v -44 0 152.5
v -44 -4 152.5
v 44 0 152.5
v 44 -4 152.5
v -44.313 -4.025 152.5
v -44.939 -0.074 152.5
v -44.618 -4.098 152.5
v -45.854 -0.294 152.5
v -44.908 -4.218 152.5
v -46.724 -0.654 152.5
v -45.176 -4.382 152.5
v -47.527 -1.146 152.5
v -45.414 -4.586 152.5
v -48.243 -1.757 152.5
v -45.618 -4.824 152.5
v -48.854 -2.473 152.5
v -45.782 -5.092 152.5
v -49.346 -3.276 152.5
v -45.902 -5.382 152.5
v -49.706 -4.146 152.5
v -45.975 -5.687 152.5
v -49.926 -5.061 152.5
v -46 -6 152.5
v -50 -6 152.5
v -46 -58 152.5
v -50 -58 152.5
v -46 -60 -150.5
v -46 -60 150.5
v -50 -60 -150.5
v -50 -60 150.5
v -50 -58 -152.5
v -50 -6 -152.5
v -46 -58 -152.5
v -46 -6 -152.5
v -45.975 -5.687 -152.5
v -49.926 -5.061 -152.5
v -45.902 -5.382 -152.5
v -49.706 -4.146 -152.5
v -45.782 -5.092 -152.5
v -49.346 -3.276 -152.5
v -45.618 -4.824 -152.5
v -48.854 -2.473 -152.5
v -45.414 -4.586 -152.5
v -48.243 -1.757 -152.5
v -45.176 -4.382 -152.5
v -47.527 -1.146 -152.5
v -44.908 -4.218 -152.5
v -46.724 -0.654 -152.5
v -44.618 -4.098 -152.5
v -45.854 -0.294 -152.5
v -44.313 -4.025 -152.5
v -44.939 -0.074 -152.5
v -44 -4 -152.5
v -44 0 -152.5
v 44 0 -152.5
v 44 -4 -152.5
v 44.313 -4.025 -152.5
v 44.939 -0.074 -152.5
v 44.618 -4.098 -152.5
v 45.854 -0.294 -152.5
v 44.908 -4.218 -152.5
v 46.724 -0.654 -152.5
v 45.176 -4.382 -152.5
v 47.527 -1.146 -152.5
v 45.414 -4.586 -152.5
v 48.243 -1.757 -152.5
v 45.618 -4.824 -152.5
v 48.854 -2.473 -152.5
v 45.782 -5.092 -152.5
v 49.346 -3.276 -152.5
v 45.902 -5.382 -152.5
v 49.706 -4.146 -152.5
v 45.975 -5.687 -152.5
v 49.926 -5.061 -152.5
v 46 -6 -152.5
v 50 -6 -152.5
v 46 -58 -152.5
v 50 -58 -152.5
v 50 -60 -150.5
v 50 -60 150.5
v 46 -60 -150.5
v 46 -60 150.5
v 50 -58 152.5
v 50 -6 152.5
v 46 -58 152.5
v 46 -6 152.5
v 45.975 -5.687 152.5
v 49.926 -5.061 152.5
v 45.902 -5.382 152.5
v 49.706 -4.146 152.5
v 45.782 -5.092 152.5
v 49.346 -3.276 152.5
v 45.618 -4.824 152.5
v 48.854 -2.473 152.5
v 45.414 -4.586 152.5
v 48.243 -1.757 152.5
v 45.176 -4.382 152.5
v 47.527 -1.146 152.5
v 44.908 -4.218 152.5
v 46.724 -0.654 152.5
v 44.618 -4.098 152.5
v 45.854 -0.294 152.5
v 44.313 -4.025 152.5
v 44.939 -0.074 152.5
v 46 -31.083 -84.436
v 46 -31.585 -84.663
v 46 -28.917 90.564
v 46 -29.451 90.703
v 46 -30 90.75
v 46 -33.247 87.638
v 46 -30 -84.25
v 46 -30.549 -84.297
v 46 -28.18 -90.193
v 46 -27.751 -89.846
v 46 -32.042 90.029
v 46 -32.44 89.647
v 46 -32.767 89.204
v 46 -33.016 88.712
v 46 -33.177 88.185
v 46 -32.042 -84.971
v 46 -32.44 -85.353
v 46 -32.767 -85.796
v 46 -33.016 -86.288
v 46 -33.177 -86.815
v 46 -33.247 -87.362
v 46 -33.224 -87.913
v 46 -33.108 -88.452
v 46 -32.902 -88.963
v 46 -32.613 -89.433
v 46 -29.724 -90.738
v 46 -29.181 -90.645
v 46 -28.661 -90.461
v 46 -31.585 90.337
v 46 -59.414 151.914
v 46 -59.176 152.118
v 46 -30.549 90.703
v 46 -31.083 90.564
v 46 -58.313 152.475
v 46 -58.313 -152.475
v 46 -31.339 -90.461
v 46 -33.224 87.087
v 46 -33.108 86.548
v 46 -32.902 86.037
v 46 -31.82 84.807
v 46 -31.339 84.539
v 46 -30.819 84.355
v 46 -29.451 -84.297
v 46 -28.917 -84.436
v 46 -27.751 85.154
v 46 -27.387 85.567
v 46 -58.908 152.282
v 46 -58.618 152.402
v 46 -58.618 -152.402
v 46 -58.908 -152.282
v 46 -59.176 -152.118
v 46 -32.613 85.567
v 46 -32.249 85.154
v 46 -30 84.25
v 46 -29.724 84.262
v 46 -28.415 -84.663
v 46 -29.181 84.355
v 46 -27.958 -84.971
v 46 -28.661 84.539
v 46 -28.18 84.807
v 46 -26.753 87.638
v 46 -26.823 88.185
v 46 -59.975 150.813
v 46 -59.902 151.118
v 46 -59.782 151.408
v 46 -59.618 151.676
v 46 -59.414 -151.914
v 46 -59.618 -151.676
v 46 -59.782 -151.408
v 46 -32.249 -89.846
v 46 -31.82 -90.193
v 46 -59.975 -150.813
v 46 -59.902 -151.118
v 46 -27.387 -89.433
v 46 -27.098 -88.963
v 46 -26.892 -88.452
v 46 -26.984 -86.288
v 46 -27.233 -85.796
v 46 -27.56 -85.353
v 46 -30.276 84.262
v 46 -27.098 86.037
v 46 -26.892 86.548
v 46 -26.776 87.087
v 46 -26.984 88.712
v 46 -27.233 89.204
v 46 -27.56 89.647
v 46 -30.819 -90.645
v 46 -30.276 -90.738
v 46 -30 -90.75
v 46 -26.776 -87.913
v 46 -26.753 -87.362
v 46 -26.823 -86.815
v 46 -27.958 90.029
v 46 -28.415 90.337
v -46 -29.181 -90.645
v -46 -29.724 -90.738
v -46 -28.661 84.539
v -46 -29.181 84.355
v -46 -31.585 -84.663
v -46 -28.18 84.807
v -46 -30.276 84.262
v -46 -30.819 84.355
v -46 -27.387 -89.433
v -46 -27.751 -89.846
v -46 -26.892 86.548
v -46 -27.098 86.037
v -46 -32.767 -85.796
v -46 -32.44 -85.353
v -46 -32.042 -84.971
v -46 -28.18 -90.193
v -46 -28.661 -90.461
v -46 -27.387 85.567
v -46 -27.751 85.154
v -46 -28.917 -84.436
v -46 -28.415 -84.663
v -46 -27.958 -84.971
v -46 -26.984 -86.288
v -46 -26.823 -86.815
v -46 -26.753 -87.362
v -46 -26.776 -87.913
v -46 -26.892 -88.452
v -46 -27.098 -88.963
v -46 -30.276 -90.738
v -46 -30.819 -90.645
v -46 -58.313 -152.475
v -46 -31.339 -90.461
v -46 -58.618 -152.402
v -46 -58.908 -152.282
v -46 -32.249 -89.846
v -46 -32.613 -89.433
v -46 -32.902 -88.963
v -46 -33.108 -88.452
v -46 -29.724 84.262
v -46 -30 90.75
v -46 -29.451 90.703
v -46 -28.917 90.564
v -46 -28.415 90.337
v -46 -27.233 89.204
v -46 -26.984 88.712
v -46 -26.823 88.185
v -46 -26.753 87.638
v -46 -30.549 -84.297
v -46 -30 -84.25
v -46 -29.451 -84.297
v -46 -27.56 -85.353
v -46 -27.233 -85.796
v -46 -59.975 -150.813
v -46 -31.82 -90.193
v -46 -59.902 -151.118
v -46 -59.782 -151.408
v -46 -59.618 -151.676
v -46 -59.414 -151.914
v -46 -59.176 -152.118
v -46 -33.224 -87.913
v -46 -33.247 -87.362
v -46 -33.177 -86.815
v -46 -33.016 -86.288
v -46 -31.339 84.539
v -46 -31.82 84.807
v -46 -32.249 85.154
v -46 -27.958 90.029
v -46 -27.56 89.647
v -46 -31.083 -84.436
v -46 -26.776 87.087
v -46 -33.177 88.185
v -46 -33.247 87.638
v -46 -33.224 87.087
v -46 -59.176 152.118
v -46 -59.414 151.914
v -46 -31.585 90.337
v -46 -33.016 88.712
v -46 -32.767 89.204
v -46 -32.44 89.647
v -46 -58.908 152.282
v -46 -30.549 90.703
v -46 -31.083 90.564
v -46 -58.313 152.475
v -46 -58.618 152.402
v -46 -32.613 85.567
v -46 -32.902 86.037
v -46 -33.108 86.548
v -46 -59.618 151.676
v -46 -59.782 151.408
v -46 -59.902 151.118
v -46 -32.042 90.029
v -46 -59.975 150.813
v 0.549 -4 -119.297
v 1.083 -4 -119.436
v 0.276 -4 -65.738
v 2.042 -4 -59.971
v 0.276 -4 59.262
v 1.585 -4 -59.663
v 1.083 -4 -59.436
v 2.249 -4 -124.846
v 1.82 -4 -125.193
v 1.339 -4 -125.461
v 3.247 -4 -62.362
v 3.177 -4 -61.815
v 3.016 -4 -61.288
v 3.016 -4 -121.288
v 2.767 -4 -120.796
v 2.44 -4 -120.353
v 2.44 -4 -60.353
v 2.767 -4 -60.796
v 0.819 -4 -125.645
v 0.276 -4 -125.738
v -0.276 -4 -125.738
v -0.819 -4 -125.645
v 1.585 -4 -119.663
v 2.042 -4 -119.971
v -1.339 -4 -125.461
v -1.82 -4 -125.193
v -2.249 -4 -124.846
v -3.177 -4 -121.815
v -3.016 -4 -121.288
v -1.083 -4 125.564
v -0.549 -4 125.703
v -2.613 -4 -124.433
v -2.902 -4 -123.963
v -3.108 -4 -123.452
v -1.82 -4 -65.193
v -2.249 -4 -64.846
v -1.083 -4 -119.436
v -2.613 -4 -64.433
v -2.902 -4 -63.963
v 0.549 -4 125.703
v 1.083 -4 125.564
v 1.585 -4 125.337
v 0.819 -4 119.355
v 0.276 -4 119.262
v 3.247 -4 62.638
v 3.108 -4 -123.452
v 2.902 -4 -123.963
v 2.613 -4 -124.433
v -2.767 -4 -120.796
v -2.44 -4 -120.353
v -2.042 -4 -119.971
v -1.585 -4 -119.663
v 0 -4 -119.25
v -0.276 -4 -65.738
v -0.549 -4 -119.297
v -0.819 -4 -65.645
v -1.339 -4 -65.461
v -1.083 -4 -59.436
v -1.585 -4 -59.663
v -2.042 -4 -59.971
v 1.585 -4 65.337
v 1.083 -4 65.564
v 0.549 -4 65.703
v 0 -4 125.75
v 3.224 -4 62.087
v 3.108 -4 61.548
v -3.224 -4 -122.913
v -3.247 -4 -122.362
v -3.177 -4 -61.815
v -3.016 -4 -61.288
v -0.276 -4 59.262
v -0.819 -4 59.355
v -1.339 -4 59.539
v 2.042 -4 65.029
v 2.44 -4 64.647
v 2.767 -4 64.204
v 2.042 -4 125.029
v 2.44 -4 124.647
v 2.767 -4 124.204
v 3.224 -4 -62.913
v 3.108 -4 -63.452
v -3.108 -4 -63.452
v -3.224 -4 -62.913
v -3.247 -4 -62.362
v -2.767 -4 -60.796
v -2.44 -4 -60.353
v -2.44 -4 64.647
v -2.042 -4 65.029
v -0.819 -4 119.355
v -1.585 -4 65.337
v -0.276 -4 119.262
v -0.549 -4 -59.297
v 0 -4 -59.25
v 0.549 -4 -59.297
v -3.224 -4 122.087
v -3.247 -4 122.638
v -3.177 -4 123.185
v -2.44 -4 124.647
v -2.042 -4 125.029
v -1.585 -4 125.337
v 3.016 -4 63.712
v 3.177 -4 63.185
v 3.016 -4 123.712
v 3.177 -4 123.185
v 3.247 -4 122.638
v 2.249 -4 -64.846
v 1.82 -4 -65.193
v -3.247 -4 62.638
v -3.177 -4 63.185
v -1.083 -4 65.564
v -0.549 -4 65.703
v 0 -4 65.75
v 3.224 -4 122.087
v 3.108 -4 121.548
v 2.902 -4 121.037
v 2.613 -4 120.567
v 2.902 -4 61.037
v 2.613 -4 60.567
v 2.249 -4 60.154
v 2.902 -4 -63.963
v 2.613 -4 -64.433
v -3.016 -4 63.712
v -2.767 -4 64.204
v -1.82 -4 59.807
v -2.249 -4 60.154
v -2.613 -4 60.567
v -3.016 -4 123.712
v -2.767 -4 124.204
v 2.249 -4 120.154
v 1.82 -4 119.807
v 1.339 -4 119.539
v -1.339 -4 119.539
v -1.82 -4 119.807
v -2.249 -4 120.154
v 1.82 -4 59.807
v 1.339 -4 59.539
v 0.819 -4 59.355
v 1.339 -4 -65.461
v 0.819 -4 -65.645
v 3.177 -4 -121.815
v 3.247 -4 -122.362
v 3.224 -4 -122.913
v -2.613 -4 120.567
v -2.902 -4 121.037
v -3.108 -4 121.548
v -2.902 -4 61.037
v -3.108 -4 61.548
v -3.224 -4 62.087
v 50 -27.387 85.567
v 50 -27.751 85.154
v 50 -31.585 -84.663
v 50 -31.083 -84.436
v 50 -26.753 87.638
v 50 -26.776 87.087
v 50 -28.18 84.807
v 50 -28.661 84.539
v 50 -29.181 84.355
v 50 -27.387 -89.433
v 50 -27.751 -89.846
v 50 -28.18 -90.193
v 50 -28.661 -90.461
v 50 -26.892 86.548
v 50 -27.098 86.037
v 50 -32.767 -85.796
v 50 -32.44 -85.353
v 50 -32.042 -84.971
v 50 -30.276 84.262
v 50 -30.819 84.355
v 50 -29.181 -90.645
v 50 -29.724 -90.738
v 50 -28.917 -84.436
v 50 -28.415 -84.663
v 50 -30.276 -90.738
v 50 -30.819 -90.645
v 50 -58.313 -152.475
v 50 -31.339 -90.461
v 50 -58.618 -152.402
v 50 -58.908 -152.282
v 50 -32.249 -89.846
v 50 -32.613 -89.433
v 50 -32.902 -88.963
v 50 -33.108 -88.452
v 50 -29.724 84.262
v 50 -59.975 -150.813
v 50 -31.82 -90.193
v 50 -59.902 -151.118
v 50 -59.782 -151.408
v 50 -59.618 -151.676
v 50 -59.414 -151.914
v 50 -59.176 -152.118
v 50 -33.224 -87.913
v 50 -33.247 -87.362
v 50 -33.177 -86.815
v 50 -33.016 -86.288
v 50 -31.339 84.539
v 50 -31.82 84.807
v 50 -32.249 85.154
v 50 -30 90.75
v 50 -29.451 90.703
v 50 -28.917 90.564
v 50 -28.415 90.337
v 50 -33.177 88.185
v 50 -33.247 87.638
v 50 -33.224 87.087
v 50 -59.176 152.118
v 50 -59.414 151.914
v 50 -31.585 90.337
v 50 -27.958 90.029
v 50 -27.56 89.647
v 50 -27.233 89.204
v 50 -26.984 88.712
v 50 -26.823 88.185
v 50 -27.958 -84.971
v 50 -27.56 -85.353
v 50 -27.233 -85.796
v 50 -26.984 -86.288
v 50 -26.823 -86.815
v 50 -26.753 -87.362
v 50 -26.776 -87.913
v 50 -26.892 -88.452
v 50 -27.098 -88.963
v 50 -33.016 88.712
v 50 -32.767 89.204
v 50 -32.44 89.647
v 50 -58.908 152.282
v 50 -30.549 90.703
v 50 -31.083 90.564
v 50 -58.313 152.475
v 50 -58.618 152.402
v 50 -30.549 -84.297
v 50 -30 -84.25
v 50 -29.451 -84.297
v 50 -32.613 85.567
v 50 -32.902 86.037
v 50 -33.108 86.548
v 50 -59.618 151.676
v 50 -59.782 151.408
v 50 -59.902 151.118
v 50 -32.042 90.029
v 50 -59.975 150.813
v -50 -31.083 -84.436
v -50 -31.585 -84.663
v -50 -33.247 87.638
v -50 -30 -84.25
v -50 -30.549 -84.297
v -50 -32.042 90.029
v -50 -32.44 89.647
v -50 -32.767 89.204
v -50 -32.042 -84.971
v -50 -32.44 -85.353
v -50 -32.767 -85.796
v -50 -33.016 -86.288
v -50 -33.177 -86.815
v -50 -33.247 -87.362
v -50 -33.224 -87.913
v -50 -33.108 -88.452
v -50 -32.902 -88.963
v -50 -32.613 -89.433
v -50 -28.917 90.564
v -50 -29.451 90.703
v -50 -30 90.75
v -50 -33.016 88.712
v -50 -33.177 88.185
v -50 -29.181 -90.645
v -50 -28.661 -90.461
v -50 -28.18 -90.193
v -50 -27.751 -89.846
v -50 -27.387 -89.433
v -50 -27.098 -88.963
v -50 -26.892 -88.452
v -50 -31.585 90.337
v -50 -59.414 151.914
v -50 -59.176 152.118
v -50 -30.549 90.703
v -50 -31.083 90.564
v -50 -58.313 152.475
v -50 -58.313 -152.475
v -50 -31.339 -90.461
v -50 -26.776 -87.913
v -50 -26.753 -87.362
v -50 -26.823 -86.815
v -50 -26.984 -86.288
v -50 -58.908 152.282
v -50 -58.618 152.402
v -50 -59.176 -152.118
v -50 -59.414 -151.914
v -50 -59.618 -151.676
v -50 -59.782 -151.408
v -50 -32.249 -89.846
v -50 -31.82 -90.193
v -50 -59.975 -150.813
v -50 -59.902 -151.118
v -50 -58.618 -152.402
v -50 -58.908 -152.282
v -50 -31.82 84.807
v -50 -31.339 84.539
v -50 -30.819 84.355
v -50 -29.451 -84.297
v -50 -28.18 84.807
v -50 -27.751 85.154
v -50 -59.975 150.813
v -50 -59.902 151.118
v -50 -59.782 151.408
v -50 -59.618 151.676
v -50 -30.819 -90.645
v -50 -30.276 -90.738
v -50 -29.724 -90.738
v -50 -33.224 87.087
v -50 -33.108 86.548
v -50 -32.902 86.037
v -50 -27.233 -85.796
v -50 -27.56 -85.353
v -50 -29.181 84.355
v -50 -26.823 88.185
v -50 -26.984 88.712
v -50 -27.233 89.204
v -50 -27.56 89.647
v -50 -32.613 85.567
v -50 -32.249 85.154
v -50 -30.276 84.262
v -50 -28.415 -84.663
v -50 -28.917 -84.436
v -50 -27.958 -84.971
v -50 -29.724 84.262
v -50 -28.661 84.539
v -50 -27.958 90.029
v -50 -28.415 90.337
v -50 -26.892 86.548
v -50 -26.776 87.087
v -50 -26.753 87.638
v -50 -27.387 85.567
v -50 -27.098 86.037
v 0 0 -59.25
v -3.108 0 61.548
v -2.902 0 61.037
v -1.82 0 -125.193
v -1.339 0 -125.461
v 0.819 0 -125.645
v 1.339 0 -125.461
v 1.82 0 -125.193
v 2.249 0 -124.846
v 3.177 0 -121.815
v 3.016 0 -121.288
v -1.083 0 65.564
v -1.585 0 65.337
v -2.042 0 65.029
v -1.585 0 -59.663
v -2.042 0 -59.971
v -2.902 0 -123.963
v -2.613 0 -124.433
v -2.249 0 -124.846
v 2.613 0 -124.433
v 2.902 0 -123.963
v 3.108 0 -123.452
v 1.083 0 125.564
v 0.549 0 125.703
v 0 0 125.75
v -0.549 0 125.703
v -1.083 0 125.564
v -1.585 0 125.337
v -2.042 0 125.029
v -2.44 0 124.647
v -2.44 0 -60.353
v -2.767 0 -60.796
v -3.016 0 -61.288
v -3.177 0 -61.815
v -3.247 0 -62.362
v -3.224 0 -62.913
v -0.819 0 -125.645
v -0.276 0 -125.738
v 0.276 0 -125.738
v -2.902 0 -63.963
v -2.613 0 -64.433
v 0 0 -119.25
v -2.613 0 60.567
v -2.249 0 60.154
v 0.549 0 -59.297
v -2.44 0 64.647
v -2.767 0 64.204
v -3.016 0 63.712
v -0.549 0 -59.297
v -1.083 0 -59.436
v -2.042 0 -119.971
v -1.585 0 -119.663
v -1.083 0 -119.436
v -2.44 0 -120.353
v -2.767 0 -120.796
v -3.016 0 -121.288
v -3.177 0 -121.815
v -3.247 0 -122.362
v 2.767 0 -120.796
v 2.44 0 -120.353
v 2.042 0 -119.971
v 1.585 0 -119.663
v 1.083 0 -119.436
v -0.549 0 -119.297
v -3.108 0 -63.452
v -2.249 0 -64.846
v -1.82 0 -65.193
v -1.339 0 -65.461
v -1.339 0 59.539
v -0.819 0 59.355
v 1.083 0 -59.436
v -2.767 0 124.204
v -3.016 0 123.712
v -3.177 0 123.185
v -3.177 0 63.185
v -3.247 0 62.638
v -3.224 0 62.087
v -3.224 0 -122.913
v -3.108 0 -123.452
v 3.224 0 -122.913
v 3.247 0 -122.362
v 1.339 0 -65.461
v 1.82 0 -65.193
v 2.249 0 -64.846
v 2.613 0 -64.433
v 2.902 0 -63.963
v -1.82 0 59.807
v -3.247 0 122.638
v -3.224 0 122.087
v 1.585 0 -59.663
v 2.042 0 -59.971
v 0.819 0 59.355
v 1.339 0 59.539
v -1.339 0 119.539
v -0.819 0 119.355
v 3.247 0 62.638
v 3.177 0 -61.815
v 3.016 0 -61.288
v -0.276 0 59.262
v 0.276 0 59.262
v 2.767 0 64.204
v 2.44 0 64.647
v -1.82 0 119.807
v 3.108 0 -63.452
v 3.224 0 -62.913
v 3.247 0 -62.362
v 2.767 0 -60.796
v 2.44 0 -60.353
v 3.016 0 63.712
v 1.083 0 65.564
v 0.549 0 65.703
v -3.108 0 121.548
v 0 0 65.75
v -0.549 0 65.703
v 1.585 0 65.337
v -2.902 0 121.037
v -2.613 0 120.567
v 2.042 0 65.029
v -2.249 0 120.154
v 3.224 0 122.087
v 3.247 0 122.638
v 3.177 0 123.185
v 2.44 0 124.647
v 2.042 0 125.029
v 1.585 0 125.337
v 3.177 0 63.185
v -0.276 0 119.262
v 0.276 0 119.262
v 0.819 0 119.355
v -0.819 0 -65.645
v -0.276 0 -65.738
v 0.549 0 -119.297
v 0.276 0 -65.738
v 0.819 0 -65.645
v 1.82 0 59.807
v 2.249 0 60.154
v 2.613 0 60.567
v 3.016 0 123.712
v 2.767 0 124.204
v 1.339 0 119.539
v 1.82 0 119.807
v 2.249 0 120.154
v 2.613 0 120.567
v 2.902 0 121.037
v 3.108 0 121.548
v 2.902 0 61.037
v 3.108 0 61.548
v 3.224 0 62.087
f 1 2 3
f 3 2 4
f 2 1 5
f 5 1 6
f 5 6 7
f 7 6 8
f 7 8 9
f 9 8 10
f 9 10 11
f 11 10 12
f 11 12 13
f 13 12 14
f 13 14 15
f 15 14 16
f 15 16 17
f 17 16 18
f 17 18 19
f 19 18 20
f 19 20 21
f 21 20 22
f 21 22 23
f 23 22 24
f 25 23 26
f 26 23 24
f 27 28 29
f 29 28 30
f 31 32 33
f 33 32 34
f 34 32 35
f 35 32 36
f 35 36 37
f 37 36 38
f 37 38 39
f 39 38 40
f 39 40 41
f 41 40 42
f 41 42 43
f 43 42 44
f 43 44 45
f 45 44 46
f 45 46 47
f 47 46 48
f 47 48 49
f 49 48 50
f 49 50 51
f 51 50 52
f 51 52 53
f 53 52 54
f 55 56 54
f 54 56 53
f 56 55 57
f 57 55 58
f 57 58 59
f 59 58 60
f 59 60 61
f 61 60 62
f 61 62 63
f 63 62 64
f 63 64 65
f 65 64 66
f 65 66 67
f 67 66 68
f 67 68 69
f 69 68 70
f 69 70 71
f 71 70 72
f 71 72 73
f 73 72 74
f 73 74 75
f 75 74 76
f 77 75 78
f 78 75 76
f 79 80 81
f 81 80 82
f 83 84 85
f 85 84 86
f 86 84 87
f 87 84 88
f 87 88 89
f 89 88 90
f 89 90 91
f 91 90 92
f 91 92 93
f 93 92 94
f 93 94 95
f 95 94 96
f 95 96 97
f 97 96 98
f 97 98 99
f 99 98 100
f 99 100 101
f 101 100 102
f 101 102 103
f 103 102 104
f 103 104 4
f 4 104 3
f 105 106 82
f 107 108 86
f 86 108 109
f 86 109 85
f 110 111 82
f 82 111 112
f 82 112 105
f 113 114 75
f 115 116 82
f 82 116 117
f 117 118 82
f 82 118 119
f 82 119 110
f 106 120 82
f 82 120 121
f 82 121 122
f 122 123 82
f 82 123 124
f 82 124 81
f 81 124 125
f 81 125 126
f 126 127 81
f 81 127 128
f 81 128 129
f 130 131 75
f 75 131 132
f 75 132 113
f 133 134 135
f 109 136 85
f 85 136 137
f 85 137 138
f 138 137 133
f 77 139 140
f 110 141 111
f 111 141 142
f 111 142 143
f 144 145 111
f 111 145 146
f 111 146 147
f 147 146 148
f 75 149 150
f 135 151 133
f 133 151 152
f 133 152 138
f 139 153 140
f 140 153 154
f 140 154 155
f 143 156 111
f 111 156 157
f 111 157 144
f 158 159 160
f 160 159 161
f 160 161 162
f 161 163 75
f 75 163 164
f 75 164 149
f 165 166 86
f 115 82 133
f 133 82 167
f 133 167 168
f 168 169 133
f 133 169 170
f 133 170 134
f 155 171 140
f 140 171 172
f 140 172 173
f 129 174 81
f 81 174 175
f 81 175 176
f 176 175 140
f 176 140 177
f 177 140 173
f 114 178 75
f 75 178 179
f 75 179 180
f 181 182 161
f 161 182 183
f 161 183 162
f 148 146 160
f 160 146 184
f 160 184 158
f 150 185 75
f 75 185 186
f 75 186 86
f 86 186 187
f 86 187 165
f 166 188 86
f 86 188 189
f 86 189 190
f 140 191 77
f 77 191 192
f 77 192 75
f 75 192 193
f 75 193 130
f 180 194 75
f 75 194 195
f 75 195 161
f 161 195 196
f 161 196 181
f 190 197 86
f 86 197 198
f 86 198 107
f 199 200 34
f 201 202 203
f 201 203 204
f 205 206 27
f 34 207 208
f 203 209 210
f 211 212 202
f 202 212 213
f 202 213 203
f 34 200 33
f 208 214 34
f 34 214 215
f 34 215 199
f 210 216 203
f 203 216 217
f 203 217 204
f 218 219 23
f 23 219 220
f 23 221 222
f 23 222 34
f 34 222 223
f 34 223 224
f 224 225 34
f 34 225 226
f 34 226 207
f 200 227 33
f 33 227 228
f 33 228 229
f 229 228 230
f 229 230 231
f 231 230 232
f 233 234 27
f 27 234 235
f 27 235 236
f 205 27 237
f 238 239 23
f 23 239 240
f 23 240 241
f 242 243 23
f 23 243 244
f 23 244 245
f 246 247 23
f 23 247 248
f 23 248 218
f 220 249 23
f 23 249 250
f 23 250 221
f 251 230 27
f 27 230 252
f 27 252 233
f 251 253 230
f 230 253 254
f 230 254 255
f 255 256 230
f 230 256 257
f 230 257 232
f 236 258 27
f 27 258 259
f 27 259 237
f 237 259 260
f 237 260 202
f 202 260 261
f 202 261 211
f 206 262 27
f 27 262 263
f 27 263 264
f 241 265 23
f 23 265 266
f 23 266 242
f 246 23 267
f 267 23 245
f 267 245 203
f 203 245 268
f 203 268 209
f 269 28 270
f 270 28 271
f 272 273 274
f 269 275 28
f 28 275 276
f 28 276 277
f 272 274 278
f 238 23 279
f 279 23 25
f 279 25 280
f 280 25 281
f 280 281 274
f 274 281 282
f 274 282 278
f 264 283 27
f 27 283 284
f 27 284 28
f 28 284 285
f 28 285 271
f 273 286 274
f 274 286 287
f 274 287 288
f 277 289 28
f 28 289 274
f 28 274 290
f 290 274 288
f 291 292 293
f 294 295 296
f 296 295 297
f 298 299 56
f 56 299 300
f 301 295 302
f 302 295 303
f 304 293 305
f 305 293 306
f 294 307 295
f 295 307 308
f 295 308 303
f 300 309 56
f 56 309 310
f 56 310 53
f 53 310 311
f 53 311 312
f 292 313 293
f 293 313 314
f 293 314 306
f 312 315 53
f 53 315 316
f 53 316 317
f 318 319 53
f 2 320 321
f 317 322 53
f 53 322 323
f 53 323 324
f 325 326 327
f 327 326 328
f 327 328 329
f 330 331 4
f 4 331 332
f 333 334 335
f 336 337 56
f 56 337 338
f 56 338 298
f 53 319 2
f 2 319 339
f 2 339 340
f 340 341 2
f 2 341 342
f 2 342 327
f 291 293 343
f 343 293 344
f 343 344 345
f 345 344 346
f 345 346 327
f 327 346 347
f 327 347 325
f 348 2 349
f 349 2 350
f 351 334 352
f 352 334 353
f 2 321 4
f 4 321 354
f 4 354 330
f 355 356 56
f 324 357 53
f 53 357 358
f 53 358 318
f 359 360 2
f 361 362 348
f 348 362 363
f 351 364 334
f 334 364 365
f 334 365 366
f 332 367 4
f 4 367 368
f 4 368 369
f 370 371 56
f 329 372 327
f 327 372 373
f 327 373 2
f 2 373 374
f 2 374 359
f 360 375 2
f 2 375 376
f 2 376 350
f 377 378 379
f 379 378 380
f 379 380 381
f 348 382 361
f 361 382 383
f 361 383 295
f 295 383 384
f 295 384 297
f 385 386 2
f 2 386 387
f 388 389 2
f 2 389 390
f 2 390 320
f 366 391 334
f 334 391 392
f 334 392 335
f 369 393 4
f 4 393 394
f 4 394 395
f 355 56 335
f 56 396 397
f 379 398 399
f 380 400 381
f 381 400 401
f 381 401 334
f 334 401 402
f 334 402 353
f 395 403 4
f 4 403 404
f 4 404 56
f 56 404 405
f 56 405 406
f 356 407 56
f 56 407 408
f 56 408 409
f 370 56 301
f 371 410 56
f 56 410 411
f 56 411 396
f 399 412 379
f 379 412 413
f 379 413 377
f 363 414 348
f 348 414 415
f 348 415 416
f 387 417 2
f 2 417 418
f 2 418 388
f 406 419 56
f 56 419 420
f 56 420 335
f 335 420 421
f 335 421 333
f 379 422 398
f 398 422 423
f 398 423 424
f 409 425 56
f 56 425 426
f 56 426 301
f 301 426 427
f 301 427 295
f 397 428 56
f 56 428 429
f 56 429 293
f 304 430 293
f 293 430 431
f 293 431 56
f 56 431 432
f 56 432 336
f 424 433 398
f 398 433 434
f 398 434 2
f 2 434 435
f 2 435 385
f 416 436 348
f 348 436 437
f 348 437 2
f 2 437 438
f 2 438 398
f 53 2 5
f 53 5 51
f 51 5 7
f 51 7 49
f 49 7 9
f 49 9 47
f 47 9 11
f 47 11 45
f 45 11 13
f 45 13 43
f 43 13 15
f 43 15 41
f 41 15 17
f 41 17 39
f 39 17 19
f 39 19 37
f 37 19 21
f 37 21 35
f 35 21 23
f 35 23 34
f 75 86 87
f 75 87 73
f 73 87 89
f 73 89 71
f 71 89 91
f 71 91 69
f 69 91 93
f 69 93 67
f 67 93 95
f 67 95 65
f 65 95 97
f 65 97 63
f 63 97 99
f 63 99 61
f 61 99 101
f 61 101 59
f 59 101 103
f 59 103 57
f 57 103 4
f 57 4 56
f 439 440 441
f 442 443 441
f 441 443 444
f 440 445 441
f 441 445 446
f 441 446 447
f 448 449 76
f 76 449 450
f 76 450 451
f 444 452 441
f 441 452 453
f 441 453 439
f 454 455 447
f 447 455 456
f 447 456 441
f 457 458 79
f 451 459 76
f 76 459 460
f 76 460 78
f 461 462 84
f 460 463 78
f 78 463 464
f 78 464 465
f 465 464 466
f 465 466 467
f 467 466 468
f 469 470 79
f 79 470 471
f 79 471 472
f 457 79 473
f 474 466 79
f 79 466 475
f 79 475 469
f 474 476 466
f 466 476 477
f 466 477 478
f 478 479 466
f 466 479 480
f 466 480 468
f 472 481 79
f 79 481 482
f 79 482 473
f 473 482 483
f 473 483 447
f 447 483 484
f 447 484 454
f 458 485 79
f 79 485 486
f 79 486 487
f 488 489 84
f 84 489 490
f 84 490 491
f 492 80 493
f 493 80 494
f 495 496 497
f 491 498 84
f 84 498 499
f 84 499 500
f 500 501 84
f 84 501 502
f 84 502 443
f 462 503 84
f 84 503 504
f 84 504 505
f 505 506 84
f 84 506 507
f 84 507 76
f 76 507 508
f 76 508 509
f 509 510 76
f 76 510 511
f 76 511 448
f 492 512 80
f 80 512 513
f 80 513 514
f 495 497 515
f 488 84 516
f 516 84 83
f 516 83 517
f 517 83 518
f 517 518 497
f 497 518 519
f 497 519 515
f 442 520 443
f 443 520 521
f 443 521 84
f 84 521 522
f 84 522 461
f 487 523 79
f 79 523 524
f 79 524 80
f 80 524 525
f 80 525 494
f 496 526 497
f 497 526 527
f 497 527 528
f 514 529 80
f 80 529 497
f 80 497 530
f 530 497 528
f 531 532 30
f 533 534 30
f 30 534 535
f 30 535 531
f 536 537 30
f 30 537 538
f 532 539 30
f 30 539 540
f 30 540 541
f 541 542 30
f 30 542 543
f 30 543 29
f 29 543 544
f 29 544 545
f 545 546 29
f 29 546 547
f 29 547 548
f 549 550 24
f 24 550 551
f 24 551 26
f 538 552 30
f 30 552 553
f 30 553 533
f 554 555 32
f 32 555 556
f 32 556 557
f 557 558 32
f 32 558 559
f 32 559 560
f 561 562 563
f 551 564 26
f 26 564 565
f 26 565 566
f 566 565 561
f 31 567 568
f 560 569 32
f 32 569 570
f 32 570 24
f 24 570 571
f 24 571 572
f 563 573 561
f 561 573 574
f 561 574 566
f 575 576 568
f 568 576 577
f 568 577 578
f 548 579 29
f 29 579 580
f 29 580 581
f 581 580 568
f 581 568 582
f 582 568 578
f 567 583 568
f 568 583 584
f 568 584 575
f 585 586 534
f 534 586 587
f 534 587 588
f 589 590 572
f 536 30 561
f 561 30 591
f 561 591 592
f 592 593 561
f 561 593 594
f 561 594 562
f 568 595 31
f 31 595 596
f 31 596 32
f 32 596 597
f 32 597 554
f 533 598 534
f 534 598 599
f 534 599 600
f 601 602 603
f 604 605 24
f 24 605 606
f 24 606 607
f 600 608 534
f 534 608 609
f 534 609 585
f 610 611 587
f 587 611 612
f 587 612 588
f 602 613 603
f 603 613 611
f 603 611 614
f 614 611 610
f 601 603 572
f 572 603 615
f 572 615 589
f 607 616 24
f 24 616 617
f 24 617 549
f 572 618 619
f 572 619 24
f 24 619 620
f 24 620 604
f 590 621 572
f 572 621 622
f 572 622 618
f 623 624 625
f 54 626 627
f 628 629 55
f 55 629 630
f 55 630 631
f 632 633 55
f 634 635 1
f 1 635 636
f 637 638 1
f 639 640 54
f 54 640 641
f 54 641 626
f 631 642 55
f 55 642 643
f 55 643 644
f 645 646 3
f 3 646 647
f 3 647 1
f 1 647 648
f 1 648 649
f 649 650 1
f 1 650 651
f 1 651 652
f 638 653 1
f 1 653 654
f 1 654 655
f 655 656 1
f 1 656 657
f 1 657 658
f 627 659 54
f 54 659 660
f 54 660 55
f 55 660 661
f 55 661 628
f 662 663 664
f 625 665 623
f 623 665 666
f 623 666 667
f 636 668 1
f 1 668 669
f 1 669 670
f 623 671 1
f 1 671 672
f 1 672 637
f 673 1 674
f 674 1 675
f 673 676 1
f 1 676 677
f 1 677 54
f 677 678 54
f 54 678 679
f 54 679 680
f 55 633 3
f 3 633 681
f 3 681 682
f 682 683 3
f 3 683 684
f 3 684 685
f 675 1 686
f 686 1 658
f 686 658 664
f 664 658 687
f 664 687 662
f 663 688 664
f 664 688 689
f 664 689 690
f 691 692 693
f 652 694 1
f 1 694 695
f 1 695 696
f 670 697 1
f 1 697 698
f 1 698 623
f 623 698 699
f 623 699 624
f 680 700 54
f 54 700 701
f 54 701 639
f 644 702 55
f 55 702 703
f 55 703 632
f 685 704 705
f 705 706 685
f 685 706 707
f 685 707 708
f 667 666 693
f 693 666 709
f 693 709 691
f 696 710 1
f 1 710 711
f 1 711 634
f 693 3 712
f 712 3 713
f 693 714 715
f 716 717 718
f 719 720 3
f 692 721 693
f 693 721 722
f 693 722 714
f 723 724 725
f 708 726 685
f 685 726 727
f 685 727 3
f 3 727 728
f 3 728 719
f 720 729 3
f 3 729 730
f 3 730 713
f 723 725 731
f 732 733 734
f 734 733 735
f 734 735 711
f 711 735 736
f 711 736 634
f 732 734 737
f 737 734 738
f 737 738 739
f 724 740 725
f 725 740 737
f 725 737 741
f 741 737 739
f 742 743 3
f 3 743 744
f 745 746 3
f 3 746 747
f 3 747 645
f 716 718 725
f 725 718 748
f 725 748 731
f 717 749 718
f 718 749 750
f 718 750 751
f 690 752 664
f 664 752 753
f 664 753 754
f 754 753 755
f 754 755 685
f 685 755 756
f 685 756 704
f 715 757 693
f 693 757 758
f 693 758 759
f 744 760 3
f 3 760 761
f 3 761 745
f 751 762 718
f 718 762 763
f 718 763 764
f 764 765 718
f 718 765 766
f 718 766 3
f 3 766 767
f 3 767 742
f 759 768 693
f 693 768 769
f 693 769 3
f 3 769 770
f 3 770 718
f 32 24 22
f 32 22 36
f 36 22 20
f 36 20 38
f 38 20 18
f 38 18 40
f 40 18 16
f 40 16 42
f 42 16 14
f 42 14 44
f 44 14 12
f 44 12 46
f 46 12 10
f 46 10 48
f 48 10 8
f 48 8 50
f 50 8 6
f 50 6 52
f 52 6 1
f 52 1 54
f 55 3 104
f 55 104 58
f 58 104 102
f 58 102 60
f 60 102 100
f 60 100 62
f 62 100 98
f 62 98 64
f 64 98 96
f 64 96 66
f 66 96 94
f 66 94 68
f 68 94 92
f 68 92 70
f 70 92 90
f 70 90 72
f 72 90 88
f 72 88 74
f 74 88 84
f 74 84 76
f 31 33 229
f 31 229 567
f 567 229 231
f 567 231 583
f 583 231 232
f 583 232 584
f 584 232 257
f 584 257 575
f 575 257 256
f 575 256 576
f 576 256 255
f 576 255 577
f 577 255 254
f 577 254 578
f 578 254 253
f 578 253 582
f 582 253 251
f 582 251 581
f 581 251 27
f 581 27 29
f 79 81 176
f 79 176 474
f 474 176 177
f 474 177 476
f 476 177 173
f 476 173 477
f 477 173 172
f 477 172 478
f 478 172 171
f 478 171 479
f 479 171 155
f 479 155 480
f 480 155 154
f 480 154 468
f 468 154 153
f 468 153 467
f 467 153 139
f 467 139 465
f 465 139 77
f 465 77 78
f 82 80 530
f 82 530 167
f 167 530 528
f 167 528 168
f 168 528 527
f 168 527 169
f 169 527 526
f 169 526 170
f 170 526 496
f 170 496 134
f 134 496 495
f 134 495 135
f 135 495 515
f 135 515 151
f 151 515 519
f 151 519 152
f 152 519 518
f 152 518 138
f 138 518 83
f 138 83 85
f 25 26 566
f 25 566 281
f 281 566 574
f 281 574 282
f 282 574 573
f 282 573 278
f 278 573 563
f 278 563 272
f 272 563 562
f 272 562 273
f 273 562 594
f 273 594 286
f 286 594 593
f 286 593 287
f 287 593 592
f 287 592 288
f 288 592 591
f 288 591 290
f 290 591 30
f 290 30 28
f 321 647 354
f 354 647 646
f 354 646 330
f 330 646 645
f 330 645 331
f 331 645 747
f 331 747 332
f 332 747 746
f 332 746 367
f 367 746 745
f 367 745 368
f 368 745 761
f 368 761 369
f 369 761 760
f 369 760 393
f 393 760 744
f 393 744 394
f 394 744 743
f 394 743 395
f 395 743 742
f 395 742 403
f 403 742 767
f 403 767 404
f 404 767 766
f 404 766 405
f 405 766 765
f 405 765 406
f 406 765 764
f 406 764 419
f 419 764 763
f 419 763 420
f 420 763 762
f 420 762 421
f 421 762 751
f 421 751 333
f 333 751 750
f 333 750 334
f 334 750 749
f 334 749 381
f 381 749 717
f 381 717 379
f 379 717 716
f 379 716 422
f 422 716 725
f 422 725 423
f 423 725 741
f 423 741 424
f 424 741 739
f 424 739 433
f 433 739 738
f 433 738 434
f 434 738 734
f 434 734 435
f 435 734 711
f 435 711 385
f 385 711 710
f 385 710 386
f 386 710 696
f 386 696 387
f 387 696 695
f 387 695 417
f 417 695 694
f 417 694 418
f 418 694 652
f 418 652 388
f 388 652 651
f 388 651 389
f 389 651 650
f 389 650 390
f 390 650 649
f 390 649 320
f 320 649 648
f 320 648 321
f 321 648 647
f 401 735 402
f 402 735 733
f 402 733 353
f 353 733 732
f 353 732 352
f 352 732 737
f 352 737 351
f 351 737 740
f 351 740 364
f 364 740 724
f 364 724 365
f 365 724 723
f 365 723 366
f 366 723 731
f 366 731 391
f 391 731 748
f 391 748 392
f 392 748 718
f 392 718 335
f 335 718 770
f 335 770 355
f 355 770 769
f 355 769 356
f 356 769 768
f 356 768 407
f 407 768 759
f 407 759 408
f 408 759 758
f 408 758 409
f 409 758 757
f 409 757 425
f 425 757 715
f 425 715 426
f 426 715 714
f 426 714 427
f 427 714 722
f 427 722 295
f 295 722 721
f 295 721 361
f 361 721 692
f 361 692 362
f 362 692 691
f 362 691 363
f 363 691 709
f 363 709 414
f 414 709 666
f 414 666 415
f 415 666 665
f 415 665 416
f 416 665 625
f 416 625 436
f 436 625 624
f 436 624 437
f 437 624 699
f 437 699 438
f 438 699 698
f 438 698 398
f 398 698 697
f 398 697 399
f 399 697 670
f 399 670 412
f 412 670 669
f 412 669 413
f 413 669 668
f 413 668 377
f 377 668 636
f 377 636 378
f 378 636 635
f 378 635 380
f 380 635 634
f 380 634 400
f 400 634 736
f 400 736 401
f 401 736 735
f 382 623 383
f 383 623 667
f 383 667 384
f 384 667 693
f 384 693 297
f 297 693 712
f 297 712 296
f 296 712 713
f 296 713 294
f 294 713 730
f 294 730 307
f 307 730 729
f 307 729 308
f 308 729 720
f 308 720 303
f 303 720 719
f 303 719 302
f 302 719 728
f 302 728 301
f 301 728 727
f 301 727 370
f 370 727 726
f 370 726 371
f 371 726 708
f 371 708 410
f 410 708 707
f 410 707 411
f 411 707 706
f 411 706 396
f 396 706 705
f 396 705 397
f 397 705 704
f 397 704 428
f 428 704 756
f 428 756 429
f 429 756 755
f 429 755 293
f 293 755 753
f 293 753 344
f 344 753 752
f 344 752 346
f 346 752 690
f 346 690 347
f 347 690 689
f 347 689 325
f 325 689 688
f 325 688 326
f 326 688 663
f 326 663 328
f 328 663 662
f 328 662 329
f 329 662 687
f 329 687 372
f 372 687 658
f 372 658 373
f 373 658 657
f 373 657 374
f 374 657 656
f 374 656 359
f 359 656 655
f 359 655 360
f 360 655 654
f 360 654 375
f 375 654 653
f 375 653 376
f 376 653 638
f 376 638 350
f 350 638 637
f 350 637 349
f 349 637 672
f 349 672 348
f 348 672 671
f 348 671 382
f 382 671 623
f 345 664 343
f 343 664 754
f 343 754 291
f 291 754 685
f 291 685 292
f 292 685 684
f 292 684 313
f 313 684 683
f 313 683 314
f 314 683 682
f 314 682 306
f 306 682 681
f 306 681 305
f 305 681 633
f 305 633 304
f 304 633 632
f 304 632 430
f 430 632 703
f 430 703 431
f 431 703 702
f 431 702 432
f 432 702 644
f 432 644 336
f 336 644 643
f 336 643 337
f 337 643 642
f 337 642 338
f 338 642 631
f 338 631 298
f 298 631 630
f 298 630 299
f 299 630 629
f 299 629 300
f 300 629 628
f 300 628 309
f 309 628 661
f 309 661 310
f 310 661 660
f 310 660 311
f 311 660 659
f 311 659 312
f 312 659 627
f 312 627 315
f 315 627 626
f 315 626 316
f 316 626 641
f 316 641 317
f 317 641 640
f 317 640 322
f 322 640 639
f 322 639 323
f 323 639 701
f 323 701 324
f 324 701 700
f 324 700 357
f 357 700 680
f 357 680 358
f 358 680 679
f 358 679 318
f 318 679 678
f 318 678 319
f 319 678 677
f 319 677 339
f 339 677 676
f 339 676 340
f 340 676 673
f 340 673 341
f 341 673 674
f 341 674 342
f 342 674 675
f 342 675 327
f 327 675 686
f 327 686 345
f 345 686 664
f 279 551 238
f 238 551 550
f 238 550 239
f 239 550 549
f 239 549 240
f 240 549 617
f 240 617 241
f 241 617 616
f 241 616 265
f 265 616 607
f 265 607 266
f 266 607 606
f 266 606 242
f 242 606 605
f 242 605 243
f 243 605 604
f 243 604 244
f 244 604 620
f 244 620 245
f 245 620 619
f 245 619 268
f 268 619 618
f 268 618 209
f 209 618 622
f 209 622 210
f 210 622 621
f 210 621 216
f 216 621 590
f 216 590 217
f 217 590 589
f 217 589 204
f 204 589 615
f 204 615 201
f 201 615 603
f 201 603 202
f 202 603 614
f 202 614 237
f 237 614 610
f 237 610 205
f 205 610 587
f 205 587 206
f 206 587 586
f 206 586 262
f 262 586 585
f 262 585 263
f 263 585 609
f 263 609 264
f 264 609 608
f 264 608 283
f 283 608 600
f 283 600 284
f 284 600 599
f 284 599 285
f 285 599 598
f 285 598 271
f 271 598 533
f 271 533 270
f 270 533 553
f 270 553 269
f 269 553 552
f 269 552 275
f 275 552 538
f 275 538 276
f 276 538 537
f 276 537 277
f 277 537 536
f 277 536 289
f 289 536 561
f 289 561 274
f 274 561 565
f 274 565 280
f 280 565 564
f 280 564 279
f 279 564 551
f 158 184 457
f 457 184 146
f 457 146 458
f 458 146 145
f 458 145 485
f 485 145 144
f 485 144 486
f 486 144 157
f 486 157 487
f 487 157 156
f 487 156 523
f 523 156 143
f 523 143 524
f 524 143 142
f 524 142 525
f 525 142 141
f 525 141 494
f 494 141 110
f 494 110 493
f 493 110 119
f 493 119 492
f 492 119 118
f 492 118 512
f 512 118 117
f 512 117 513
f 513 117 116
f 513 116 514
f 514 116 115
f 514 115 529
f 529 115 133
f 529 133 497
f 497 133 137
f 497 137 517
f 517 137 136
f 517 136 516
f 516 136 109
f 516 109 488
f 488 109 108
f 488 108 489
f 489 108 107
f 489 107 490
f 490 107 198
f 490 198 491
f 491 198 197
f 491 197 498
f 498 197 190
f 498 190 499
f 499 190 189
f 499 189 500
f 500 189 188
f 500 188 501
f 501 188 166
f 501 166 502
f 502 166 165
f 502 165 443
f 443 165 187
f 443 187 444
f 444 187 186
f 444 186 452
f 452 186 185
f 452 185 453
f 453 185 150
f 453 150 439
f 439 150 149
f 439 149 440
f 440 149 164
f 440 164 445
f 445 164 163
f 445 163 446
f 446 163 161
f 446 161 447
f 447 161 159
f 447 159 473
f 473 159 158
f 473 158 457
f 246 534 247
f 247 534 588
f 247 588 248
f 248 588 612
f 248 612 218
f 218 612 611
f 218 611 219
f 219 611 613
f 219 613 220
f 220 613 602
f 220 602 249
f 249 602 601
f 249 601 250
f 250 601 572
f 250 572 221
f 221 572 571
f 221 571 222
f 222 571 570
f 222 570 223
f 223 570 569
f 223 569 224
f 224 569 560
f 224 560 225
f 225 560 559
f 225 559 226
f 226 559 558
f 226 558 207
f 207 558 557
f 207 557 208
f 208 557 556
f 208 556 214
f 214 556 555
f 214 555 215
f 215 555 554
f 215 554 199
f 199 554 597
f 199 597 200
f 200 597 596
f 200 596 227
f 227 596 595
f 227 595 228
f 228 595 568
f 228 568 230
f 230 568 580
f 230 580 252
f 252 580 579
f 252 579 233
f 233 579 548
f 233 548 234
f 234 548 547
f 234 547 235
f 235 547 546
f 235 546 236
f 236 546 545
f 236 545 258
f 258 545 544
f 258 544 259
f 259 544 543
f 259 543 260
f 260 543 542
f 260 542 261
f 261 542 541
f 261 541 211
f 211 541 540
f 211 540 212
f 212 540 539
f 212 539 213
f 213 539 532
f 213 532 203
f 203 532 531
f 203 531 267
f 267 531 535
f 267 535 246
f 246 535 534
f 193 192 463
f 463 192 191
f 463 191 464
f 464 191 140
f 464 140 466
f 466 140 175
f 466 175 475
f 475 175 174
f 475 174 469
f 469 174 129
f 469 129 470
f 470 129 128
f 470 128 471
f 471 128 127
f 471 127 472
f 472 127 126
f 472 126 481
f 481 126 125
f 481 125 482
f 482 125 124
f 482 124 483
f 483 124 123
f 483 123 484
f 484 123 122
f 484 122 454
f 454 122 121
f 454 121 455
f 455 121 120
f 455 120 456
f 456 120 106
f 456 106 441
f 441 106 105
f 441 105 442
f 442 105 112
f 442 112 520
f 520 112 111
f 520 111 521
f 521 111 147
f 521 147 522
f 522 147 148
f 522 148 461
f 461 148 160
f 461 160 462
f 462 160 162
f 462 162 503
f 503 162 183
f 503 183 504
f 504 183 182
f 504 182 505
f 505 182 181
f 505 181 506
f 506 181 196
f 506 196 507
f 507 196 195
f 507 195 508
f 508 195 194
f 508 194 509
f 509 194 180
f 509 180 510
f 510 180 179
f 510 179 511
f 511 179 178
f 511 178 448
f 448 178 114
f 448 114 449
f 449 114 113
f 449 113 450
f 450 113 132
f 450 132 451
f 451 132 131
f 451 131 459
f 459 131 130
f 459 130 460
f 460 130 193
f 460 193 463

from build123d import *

# Parameters (mm, degrees)
EXTRUDE_THIN1_DEPTH            = 152.5
CONVERT_SOLID1_START           = -152.5
CONVERT_SOLID1_DEPTH           = 305
CONVERT_SOLID1_2_DEPTH         = 305
FILLET1_R                      = 2
F_6_5_6_5_DIAMETER_HOLE1_D     = 6.5
F_6_5_6_5_DIAMETER_HOLE2_D     = 6.5
F_6_5_6_5_DIAMETER_HOLE2_DEPTH = 497


# Read off the part's stored shape, not the designer's step: Convert-Solid1
with BuildPart() as part:
    # Sketch1 → Extrude-Thin1 (new, symmetric)
    with BuildSketch(Plane.XY):
        Polygon((-50, -60), (-50, 0), (50, 0), (50, -60), (46, -60), (46, -4), (-46, -4), (-46, -60), align=None)
    extrude(amount=EXTRUDE_THIN1_DEPTH, both=True)

    # Convert-Solid1 outline → Convert-Solid1 (cut)
    with BuildSketch(Plane.XY.offset(CONVERT_SOLID1_START)):
        with BuildLine():
            Line((50, 0), (44, 0))
            ThreePointArc((44, 0), (48.242640687, -1.757359313), (50, -6))
            Line((50, -6), (50, 0))
        make_face()
        with BuildLine():
            ThreePointArc((-50, -6), (-48.242640687, -1.757359313), (-44, 0))
            Line((-44, 0), (-50, 0))
            Line((-50, 0), (-50, -6))
        make_face()
    extrude(amount=CONVERT_SOLID1_DEPTH, mode=Mode.SUBTRACT)

    # Convert-Solid1 2 outline → Convert-Solid1 2 (add)
    with BuildSketch(Plane.XY.offset(CONVERT_SOLID1_START)):
        with BuildLine():
            Line((46, -4), (44, -4))
            ThreePointArc((44, -4), (45.414213562, -4.585786438), (46, -6))
            Line((46, -6), (46, -4))
        make_face()
        with BuildLine():
            ThreePointArc((-46, -6), (-45.414213562, -4.585786438), (-44, -4))
            Line((-44, -4), (-46, -4))
            Line((-46, -4), (-46, -6))
        make_face()
    extrude(amount=CONVERT_SOLID1_2_DEPTH)

    # Fillet1
    fillet1_edges = [part.edges().sort_by_distance(p)[0] for p in [
        (48, -60, 152.5),
        (48, -60, -152.5),
        (-48, -60, -152.5),
        (-48, -60, 152.5),
    ]]
    fillet(fillet1_edges, radius=FILLET1_R)

    # Ø6.5 (6.5) Diameter Hole1 (through all)
    with Locations(Plane(origin=(-244.5, 0, 0), x_dir=(0, 0, 1), z_dir=(0, 1, 0))):
        with Locations((-122.5, 244.5), (-62.5, 244.5), (62.5, 244.5), (122.5, 244.5)):
            Hole(F_6_5_6_5_DIAMETER_HOLE1_D / 2)

    # Ø6.5 (6.5) Diameter Hole2
    with Locations(Plane(origin=(-447, -38, 0), x_dir=(0, 0, 1), z_dir=(-1, 0, 0))):
        with Locations((-87.5, 8), (87.5, 8)):
            Hole(F_6_5_6_5_DIAMETER_HOLE2_D / 2, depth=F_6_5_6_5_DIAMETER_HOLE2_DEPTH)


solid = part.part
